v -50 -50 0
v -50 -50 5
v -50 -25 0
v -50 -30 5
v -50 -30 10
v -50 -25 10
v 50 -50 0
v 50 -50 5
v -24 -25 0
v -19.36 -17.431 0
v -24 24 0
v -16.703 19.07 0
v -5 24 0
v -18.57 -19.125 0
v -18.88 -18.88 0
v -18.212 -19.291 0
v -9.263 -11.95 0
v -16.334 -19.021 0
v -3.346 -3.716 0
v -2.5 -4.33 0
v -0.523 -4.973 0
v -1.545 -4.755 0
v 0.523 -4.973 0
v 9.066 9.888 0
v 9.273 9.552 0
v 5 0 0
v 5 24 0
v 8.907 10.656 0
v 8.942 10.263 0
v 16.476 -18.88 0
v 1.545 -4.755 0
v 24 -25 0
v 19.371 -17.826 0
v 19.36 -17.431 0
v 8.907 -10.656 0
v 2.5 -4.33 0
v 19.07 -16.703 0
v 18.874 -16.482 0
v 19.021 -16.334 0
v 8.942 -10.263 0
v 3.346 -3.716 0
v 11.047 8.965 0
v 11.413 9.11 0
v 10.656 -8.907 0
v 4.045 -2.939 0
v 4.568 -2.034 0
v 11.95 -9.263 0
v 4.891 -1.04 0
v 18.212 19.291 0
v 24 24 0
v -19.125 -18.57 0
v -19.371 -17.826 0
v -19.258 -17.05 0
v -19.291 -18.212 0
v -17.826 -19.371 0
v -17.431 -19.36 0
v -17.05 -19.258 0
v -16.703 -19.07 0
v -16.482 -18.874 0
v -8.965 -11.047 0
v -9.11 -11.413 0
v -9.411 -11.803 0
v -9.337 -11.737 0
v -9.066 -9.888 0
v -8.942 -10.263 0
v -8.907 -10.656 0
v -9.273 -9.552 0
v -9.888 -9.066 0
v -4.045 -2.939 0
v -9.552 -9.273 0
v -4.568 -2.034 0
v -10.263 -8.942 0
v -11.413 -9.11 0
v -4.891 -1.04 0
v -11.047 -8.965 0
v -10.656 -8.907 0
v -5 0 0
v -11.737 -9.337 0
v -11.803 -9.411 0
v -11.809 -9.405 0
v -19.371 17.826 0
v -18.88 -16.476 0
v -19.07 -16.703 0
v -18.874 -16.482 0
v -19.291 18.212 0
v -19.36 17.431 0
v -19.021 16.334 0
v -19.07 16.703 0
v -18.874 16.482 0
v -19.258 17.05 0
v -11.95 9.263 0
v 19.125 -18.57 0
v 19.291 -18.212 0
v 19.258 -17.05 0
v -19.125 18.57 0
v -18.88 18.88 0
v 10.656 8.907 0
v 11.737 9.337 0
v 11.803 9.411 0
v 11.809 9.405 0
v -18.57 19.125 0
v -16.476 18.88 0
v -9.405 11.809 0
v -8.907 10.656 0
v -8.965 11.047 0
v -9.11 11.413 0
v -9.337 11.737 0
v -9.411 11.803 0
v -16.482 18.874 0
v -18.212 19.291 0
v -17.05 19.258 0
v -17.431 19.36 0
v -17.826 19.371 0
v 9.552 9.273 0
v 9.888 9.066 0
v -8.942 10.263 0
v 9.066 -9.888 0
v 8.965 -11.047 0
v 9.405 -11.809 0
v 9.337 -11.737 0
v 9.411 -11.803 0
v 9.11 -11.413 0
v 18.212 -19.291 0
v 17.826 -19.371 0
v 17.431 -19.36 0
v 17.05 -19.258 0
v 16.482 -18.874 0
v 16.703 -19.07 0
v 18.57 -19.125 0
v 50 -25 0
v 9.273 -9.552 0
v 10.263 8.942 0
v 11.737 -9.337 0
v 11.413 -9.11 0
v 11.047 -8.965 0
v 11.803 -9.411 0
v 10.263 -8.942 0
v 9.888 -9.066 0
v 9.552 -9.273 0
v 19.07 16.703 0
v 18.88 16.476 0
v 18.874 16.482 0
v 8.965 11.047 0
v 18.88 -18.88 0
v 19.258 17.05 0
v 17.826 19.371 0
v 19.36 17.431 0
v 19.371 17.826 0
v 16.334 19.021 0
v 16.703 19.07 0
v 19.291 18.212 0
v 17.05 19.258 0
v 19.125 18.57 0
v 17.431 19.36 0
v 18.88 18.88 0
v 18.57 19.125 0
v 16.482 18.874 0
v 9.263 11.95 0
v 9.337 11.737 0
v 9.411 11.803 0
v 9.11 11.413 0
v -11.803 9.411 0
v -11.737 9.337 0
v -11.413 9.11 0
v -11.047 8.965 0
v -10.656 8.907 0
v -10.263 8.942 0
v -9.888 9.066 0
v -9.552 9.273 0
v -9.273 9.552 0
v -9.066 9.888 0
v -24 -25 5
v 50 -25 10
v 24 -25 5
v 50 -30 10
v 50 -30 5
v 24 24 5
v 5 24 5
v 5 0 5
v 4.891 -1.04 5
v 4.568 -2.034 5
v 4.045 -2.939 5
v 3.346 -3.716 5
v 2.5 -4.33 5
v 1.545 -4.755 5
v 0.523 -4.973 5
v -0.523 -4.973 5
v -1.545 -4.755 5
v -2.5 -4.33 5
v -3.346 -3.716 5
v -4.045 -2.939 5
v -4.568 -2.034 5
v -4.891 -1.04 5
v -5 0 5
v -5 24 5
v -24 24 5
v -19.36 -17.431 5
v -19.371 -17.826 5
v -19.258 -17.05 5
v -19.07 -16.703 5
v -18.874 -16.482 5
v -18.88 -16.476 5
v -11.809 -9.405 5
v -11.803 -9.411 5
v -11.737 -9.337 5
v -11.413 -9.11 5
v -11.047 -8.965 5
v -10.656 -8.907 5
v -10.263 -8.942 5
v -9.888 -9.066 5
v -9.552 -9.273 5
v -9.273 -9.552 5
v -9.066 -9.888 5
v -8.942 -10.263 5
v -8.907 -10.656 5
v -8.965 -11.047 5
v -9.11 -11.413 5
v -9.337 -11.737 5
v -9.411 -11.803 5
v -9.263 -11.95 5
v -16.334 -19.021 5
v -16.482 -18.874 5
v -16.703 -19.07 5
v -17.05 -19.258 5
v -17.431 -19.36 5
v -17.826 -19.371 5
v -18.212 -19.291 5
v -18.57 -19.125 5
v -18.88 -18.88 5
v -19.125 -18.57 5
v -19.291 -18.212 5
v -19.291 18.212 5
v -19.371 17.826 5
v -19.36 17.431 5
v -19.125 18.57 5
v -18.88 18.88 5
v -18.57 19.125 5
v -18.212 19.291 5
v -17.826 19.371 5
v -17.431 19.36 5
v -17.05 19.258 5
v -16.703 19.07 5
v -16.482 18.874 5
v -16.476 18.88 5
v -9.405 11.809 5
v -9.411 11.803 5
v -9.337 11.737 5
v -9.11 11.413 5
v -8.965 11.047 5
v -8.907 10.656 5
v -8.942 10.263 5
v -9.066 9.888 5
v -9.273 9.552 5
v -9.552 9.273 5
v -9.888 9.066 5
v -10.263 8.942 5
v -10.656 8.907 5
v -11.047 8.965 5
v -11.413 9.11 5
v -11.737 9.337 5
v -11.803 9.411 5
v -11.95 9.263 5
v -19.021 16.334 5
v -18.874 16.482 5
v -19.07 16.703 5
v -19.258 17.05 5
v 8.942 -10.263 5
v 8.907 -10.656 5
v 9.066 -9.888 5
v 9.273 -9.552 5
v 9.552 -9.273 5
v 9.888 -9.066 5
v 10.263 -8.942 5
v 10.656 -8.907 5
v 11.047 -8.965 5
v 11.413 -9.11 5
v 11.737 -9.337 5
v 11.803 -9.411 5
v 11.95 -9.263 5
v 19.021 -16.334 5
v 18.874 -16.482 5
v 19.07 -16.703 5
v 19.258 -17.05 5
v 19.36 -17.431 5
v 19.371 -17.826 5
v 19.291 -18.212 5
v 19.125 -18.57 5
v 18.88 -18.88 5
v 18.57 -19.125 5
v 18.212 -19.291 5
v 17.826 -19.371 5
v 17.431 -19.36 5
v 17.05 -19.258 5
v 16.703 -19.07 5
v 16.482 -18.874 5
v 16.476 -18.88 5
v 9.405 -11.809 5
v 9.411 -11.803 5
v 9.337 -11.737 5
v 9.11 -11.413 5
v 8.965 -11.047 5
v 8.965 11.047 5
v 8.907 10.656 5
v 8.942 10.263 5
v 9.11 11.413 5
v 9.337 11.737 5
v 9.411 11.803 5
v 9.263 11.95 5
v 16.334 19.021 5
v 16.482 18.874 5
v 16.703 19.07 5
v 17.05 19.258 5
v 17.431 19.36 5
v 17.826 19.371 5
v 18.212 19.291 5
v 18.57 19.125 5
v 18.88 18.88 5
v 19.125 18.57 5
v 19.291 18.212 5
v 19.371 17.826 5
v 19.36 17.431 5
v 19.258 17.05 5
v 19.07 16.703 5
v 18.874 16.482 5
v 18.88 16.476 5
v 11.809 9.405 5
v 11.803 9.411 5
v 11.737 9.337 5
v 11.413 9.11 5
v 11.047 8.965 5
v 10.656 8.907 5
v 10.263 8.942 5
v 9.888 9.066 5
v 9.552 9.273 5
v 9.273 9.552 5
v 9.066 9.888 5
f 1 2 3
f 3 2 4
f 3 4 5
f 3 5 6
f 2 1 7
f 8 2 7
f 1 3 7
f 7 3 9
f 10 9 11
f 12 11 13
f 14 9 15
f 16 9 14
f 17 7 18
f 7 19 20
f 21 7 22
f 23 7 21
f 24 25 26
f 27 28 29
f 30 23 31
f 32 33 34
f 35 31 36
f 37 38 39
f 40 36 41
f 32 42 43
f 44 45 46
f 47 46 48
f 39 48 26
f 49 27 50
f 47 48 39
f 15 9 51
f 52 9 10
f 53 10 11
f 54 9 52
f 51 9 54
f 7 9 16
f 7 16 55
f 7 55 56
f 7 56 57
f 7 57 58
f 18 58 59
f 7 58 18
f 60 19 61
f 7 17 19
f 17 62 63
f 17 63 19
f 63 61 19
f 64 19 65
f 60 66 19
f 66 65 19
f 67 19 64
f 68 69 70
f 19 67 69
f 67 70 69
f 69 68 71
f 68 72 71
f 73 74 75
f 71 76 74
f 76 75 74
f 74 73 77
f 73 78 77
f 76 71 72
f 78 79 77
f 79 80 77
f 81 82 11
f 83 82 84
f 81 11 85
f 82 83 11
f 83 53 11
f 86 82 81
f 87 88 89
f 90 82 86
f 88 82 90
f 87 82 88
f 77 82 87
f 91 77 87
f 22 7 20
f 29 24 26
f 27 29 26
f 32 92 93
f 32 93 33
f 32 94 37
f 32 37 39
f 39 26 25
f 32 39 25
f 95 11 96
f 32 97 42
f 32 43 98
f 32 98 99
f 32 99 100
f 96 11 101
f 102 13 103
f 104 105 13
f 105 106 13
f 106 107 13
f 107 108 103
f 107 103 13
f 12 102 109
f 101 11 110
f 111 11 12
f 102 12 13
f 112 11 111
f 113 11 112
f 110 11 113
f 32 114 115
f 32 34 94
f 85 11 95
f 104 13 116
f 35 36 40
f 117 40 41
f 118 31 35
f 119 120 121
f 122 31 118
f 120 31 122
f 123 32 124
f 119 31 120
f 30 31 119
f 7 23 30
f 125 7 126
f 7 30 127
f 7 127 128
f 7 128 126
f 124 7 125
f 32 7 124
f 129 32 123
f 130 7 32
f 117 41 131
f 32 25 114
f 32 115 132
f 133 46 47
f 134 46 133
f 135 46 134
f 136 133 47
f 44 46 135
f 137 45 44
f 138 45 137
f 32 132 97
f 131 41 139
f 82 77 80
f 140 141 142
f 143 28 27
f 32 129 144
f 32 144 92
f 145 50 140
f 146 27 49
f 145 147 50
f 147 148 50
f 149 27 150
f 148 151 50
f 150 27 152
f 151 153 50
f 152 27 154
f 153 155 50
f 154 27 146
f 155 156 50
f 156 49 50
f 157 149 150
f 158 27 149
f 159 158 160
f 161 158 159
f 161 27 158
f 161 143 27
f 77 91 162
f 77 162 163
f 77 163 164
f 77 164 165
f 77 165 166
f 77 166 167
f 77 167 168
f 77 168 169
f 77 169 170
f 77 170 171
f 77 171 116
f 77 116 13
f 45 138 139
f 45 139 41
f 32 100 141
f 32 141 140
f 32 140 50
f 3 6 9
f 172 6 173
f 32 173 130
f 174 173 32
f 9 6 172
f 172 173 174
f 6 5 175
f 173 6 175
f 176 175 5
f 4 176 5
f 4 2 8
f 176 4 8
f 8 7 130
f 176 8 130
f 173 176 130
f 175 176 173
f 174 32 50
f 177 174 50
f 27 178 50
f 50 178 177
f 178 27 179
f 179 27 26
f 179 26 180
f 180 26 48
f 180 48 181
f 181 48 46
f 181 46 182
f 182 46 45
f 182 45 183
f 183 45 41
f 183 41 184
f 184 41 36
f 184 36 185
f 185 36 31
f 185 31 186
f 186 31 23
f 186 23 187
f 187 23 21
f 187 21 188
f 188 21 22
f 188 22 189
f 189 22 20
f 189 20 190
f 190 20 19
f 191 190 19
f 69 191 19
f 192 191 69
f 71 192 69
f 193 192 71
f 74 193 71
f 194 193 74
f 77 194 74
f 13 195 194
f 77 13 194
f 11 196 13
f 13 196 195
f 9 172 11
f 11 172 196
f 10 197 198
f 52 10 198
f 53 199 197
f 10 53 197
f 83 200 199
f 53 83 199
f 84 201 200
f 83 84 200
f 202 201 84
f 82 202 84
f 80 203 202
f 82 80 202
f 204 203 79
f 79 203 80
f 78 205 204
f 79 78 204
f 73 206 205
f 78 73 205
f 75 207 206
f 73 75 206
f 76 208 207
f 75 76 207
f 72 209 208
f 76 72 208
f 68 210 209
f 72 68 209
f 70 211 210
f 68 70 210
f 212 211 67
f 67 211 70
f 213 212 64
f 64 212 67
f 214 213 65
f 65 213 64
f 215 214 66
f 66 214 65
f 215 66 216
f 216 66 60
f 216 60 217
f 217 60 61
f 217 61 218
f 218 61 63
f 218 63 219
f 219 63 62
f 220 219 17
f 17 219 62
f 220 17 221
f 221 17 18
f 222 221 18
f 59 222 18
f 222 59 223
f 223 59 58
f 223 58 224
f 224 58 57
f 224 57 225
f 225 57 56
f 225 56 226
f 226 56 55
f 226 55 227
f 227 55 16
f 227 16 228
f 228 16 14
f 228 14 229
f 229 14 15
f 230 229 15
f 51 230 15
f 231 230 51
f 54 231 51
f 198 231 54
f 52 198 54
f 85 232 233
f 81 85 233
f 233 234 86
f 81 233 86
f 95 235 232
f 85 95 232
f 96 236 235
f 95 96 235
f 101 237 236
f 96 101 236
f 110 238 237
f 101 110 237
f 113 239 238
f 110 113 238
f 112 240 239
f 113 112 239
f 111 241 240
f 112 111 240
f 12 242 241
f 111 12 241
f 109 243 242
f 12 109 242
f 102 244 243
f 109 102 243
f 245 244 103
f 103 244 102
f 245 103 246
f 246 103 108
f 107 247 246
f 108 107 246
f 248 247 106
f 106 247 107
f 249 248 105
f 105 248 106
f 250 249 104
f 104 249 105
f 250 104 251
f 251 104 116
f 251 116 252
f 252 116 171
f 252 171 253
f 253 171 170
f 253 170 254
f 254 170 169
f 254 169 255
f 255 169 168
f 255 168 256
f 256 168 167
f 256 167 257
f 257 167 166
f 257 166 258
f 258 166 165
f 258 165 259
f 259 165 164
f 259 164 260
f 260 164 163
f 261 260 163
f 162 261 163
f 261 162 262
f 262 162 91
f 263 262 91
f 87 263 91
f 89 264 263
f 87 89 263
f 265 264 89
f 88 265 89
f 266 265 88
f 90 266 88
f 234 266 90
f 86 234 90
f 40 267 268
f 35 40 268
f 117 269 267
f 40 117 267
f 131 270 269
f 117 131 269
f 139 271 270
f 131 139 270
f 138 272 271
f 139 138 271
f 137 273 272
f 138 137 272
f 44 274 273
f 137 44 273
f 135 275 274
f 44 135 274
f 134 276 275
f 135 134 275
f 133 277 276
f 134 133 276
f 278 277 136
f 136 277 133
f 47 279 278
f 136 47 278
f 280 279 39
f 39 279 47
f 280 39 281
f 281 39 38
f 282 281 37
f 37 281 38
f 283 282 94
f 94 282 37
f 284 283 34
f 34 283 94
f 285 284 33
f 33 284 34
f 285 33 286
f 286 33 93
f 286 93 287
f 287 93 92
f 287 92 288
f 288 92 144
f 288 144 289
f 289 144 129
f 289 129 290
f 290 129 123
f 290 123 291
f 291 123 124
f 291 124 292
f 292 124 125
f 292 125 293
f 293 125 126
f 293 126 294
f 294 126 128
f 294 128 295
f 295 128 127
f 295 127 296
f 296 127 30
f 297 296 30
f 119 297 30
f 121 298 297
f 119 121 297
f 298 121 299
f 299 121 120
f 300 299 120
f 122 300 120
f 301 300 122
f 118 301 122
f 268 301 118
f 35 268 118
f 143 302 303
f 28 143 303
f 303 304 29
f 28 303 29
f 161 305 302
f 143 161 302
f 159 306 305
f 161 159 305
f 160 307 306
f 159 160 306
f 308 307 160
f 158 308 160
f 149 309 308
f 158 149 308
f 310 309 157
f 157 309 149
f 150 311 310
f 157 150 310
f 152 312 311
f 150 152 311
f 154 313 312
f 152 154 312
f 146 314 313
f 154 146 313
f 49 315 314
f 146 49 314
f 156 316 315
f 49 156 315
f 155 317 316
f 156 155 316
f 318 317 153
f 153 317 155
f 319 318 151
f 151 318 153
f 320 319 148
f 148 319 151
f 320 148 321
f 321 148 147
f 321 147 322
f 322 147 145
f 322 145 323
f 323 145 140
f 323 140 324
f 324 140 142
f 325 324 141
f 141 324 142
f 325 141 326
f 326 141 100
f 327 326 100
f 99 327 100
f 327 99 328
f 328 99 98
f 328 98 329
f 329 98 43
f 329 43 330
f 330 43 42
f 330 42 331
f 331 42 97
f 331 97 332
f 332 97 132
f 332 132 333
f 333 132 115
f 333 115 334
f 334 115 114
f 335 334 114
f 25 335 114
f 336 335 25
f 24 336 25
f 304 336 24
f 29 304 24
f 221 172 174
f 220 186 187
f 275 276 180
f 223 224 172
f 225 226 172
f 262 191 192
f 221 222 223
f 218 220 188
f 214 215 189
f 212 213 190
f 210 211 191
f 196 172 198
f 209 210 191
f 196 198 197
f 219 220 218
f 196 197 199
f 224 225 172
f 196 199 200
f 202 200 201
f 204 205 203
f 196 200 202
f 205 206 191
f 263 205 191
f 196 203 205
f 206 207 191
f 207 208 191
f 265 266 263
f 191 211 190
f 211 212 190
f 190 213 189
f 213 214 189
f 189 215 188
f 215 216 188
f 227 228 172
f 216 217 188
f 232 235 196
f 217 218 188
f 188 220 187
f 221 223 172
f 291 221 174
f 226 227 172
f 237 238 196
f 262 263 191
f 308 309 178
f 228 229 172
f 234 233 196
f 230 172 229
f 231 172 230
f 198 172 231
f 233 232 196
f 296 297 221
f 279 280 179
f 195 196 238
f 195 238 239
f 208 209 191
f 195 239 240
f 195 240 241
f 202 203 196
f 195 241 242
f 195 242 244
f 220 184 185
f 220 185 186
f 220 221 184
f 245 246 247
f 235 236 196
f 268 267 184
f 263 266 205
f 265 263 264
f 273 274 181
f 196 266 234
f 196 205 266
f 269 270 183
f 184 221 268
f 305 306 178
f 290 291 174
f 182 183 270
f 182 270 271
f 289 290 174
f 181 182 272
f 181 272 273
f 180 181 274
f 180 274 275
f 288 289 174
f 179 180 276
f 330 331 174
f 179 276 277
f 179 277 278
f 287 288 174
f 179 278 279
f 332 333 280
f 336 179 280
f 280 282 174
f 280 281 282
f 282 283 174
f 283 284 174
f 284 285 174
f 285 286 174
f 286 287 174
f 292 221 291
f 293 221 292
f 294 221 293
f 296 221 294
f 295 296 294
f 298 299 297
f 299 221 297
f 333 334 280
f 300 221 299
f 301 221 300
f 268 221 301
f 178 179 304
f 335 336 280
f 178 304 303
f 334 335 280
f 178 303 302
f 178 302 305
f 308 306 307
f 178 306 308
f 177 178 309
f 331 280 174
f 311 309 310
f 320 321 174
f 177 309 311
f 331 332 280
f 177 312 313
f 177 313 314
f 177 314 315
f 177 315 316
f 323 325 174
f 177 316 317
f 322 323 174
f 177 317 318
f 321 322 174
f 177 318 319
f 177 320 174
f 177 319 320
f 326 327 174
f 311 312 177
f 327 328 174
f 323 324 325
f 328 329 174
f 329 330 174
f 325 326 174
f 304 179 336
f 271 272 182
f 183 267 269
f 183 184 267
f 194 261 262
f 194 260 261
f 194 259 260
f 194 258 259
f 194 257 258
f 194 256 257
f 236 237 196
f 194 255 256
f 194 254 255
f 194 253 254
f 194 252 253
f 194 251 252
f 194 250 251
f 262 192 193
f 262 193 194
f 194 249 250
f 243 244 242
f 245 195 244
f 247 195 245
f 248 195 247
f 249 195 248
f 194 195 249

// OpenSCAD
$fs=0.4;

module steppercorner() {

    translate(v=[15,0,-3]) translate(v=[0,-1.7,0]) cube(size=[10,3.6,15]);
    translate(v=[25,0,-3]) cylinder(r=1.7, h=15);
    translate(v=[15,0,-3]) cylinder(r=1.7, h=15);

}

module stepper() {
  color("red") union() translate(v=[0,0,-2]) {
    translate(v=[-21,-21,-2]) cube(size=[42,42,2]);

    rotate(v=[0,0,1],a=0+45) steppercorner();
    rotate(v=[0,0,1],a=90+45) steppercorner();
    rotate(v=[0,0,1],a=180+45) steppercorner();
    rotate(v=[0,0,1],a=270+45) steppercorner();

    // translate(v=[0,0,0]) cylinder(r=11, h=2);
    translate(v=[0,0,0]) cylinder(r=2.5, h=24);
    translate(v=[0,0,0]) cylinder(r=5, h=24);

    translate(v=[-5,0,-2]) cube(size=[10,42,12]);
  }
}



module corner() {
  color("green") union() {
    translate(v=[-24,-31,0]) cube(size=[48,55,5]);
    translate(v=[-50,-50,0]) cube(size=[100,20,5]);
    translate(v=[-50,-30,0]) cube(size=[100,5,10]);
  }
}

difference() {
corner();
stepper();
}
